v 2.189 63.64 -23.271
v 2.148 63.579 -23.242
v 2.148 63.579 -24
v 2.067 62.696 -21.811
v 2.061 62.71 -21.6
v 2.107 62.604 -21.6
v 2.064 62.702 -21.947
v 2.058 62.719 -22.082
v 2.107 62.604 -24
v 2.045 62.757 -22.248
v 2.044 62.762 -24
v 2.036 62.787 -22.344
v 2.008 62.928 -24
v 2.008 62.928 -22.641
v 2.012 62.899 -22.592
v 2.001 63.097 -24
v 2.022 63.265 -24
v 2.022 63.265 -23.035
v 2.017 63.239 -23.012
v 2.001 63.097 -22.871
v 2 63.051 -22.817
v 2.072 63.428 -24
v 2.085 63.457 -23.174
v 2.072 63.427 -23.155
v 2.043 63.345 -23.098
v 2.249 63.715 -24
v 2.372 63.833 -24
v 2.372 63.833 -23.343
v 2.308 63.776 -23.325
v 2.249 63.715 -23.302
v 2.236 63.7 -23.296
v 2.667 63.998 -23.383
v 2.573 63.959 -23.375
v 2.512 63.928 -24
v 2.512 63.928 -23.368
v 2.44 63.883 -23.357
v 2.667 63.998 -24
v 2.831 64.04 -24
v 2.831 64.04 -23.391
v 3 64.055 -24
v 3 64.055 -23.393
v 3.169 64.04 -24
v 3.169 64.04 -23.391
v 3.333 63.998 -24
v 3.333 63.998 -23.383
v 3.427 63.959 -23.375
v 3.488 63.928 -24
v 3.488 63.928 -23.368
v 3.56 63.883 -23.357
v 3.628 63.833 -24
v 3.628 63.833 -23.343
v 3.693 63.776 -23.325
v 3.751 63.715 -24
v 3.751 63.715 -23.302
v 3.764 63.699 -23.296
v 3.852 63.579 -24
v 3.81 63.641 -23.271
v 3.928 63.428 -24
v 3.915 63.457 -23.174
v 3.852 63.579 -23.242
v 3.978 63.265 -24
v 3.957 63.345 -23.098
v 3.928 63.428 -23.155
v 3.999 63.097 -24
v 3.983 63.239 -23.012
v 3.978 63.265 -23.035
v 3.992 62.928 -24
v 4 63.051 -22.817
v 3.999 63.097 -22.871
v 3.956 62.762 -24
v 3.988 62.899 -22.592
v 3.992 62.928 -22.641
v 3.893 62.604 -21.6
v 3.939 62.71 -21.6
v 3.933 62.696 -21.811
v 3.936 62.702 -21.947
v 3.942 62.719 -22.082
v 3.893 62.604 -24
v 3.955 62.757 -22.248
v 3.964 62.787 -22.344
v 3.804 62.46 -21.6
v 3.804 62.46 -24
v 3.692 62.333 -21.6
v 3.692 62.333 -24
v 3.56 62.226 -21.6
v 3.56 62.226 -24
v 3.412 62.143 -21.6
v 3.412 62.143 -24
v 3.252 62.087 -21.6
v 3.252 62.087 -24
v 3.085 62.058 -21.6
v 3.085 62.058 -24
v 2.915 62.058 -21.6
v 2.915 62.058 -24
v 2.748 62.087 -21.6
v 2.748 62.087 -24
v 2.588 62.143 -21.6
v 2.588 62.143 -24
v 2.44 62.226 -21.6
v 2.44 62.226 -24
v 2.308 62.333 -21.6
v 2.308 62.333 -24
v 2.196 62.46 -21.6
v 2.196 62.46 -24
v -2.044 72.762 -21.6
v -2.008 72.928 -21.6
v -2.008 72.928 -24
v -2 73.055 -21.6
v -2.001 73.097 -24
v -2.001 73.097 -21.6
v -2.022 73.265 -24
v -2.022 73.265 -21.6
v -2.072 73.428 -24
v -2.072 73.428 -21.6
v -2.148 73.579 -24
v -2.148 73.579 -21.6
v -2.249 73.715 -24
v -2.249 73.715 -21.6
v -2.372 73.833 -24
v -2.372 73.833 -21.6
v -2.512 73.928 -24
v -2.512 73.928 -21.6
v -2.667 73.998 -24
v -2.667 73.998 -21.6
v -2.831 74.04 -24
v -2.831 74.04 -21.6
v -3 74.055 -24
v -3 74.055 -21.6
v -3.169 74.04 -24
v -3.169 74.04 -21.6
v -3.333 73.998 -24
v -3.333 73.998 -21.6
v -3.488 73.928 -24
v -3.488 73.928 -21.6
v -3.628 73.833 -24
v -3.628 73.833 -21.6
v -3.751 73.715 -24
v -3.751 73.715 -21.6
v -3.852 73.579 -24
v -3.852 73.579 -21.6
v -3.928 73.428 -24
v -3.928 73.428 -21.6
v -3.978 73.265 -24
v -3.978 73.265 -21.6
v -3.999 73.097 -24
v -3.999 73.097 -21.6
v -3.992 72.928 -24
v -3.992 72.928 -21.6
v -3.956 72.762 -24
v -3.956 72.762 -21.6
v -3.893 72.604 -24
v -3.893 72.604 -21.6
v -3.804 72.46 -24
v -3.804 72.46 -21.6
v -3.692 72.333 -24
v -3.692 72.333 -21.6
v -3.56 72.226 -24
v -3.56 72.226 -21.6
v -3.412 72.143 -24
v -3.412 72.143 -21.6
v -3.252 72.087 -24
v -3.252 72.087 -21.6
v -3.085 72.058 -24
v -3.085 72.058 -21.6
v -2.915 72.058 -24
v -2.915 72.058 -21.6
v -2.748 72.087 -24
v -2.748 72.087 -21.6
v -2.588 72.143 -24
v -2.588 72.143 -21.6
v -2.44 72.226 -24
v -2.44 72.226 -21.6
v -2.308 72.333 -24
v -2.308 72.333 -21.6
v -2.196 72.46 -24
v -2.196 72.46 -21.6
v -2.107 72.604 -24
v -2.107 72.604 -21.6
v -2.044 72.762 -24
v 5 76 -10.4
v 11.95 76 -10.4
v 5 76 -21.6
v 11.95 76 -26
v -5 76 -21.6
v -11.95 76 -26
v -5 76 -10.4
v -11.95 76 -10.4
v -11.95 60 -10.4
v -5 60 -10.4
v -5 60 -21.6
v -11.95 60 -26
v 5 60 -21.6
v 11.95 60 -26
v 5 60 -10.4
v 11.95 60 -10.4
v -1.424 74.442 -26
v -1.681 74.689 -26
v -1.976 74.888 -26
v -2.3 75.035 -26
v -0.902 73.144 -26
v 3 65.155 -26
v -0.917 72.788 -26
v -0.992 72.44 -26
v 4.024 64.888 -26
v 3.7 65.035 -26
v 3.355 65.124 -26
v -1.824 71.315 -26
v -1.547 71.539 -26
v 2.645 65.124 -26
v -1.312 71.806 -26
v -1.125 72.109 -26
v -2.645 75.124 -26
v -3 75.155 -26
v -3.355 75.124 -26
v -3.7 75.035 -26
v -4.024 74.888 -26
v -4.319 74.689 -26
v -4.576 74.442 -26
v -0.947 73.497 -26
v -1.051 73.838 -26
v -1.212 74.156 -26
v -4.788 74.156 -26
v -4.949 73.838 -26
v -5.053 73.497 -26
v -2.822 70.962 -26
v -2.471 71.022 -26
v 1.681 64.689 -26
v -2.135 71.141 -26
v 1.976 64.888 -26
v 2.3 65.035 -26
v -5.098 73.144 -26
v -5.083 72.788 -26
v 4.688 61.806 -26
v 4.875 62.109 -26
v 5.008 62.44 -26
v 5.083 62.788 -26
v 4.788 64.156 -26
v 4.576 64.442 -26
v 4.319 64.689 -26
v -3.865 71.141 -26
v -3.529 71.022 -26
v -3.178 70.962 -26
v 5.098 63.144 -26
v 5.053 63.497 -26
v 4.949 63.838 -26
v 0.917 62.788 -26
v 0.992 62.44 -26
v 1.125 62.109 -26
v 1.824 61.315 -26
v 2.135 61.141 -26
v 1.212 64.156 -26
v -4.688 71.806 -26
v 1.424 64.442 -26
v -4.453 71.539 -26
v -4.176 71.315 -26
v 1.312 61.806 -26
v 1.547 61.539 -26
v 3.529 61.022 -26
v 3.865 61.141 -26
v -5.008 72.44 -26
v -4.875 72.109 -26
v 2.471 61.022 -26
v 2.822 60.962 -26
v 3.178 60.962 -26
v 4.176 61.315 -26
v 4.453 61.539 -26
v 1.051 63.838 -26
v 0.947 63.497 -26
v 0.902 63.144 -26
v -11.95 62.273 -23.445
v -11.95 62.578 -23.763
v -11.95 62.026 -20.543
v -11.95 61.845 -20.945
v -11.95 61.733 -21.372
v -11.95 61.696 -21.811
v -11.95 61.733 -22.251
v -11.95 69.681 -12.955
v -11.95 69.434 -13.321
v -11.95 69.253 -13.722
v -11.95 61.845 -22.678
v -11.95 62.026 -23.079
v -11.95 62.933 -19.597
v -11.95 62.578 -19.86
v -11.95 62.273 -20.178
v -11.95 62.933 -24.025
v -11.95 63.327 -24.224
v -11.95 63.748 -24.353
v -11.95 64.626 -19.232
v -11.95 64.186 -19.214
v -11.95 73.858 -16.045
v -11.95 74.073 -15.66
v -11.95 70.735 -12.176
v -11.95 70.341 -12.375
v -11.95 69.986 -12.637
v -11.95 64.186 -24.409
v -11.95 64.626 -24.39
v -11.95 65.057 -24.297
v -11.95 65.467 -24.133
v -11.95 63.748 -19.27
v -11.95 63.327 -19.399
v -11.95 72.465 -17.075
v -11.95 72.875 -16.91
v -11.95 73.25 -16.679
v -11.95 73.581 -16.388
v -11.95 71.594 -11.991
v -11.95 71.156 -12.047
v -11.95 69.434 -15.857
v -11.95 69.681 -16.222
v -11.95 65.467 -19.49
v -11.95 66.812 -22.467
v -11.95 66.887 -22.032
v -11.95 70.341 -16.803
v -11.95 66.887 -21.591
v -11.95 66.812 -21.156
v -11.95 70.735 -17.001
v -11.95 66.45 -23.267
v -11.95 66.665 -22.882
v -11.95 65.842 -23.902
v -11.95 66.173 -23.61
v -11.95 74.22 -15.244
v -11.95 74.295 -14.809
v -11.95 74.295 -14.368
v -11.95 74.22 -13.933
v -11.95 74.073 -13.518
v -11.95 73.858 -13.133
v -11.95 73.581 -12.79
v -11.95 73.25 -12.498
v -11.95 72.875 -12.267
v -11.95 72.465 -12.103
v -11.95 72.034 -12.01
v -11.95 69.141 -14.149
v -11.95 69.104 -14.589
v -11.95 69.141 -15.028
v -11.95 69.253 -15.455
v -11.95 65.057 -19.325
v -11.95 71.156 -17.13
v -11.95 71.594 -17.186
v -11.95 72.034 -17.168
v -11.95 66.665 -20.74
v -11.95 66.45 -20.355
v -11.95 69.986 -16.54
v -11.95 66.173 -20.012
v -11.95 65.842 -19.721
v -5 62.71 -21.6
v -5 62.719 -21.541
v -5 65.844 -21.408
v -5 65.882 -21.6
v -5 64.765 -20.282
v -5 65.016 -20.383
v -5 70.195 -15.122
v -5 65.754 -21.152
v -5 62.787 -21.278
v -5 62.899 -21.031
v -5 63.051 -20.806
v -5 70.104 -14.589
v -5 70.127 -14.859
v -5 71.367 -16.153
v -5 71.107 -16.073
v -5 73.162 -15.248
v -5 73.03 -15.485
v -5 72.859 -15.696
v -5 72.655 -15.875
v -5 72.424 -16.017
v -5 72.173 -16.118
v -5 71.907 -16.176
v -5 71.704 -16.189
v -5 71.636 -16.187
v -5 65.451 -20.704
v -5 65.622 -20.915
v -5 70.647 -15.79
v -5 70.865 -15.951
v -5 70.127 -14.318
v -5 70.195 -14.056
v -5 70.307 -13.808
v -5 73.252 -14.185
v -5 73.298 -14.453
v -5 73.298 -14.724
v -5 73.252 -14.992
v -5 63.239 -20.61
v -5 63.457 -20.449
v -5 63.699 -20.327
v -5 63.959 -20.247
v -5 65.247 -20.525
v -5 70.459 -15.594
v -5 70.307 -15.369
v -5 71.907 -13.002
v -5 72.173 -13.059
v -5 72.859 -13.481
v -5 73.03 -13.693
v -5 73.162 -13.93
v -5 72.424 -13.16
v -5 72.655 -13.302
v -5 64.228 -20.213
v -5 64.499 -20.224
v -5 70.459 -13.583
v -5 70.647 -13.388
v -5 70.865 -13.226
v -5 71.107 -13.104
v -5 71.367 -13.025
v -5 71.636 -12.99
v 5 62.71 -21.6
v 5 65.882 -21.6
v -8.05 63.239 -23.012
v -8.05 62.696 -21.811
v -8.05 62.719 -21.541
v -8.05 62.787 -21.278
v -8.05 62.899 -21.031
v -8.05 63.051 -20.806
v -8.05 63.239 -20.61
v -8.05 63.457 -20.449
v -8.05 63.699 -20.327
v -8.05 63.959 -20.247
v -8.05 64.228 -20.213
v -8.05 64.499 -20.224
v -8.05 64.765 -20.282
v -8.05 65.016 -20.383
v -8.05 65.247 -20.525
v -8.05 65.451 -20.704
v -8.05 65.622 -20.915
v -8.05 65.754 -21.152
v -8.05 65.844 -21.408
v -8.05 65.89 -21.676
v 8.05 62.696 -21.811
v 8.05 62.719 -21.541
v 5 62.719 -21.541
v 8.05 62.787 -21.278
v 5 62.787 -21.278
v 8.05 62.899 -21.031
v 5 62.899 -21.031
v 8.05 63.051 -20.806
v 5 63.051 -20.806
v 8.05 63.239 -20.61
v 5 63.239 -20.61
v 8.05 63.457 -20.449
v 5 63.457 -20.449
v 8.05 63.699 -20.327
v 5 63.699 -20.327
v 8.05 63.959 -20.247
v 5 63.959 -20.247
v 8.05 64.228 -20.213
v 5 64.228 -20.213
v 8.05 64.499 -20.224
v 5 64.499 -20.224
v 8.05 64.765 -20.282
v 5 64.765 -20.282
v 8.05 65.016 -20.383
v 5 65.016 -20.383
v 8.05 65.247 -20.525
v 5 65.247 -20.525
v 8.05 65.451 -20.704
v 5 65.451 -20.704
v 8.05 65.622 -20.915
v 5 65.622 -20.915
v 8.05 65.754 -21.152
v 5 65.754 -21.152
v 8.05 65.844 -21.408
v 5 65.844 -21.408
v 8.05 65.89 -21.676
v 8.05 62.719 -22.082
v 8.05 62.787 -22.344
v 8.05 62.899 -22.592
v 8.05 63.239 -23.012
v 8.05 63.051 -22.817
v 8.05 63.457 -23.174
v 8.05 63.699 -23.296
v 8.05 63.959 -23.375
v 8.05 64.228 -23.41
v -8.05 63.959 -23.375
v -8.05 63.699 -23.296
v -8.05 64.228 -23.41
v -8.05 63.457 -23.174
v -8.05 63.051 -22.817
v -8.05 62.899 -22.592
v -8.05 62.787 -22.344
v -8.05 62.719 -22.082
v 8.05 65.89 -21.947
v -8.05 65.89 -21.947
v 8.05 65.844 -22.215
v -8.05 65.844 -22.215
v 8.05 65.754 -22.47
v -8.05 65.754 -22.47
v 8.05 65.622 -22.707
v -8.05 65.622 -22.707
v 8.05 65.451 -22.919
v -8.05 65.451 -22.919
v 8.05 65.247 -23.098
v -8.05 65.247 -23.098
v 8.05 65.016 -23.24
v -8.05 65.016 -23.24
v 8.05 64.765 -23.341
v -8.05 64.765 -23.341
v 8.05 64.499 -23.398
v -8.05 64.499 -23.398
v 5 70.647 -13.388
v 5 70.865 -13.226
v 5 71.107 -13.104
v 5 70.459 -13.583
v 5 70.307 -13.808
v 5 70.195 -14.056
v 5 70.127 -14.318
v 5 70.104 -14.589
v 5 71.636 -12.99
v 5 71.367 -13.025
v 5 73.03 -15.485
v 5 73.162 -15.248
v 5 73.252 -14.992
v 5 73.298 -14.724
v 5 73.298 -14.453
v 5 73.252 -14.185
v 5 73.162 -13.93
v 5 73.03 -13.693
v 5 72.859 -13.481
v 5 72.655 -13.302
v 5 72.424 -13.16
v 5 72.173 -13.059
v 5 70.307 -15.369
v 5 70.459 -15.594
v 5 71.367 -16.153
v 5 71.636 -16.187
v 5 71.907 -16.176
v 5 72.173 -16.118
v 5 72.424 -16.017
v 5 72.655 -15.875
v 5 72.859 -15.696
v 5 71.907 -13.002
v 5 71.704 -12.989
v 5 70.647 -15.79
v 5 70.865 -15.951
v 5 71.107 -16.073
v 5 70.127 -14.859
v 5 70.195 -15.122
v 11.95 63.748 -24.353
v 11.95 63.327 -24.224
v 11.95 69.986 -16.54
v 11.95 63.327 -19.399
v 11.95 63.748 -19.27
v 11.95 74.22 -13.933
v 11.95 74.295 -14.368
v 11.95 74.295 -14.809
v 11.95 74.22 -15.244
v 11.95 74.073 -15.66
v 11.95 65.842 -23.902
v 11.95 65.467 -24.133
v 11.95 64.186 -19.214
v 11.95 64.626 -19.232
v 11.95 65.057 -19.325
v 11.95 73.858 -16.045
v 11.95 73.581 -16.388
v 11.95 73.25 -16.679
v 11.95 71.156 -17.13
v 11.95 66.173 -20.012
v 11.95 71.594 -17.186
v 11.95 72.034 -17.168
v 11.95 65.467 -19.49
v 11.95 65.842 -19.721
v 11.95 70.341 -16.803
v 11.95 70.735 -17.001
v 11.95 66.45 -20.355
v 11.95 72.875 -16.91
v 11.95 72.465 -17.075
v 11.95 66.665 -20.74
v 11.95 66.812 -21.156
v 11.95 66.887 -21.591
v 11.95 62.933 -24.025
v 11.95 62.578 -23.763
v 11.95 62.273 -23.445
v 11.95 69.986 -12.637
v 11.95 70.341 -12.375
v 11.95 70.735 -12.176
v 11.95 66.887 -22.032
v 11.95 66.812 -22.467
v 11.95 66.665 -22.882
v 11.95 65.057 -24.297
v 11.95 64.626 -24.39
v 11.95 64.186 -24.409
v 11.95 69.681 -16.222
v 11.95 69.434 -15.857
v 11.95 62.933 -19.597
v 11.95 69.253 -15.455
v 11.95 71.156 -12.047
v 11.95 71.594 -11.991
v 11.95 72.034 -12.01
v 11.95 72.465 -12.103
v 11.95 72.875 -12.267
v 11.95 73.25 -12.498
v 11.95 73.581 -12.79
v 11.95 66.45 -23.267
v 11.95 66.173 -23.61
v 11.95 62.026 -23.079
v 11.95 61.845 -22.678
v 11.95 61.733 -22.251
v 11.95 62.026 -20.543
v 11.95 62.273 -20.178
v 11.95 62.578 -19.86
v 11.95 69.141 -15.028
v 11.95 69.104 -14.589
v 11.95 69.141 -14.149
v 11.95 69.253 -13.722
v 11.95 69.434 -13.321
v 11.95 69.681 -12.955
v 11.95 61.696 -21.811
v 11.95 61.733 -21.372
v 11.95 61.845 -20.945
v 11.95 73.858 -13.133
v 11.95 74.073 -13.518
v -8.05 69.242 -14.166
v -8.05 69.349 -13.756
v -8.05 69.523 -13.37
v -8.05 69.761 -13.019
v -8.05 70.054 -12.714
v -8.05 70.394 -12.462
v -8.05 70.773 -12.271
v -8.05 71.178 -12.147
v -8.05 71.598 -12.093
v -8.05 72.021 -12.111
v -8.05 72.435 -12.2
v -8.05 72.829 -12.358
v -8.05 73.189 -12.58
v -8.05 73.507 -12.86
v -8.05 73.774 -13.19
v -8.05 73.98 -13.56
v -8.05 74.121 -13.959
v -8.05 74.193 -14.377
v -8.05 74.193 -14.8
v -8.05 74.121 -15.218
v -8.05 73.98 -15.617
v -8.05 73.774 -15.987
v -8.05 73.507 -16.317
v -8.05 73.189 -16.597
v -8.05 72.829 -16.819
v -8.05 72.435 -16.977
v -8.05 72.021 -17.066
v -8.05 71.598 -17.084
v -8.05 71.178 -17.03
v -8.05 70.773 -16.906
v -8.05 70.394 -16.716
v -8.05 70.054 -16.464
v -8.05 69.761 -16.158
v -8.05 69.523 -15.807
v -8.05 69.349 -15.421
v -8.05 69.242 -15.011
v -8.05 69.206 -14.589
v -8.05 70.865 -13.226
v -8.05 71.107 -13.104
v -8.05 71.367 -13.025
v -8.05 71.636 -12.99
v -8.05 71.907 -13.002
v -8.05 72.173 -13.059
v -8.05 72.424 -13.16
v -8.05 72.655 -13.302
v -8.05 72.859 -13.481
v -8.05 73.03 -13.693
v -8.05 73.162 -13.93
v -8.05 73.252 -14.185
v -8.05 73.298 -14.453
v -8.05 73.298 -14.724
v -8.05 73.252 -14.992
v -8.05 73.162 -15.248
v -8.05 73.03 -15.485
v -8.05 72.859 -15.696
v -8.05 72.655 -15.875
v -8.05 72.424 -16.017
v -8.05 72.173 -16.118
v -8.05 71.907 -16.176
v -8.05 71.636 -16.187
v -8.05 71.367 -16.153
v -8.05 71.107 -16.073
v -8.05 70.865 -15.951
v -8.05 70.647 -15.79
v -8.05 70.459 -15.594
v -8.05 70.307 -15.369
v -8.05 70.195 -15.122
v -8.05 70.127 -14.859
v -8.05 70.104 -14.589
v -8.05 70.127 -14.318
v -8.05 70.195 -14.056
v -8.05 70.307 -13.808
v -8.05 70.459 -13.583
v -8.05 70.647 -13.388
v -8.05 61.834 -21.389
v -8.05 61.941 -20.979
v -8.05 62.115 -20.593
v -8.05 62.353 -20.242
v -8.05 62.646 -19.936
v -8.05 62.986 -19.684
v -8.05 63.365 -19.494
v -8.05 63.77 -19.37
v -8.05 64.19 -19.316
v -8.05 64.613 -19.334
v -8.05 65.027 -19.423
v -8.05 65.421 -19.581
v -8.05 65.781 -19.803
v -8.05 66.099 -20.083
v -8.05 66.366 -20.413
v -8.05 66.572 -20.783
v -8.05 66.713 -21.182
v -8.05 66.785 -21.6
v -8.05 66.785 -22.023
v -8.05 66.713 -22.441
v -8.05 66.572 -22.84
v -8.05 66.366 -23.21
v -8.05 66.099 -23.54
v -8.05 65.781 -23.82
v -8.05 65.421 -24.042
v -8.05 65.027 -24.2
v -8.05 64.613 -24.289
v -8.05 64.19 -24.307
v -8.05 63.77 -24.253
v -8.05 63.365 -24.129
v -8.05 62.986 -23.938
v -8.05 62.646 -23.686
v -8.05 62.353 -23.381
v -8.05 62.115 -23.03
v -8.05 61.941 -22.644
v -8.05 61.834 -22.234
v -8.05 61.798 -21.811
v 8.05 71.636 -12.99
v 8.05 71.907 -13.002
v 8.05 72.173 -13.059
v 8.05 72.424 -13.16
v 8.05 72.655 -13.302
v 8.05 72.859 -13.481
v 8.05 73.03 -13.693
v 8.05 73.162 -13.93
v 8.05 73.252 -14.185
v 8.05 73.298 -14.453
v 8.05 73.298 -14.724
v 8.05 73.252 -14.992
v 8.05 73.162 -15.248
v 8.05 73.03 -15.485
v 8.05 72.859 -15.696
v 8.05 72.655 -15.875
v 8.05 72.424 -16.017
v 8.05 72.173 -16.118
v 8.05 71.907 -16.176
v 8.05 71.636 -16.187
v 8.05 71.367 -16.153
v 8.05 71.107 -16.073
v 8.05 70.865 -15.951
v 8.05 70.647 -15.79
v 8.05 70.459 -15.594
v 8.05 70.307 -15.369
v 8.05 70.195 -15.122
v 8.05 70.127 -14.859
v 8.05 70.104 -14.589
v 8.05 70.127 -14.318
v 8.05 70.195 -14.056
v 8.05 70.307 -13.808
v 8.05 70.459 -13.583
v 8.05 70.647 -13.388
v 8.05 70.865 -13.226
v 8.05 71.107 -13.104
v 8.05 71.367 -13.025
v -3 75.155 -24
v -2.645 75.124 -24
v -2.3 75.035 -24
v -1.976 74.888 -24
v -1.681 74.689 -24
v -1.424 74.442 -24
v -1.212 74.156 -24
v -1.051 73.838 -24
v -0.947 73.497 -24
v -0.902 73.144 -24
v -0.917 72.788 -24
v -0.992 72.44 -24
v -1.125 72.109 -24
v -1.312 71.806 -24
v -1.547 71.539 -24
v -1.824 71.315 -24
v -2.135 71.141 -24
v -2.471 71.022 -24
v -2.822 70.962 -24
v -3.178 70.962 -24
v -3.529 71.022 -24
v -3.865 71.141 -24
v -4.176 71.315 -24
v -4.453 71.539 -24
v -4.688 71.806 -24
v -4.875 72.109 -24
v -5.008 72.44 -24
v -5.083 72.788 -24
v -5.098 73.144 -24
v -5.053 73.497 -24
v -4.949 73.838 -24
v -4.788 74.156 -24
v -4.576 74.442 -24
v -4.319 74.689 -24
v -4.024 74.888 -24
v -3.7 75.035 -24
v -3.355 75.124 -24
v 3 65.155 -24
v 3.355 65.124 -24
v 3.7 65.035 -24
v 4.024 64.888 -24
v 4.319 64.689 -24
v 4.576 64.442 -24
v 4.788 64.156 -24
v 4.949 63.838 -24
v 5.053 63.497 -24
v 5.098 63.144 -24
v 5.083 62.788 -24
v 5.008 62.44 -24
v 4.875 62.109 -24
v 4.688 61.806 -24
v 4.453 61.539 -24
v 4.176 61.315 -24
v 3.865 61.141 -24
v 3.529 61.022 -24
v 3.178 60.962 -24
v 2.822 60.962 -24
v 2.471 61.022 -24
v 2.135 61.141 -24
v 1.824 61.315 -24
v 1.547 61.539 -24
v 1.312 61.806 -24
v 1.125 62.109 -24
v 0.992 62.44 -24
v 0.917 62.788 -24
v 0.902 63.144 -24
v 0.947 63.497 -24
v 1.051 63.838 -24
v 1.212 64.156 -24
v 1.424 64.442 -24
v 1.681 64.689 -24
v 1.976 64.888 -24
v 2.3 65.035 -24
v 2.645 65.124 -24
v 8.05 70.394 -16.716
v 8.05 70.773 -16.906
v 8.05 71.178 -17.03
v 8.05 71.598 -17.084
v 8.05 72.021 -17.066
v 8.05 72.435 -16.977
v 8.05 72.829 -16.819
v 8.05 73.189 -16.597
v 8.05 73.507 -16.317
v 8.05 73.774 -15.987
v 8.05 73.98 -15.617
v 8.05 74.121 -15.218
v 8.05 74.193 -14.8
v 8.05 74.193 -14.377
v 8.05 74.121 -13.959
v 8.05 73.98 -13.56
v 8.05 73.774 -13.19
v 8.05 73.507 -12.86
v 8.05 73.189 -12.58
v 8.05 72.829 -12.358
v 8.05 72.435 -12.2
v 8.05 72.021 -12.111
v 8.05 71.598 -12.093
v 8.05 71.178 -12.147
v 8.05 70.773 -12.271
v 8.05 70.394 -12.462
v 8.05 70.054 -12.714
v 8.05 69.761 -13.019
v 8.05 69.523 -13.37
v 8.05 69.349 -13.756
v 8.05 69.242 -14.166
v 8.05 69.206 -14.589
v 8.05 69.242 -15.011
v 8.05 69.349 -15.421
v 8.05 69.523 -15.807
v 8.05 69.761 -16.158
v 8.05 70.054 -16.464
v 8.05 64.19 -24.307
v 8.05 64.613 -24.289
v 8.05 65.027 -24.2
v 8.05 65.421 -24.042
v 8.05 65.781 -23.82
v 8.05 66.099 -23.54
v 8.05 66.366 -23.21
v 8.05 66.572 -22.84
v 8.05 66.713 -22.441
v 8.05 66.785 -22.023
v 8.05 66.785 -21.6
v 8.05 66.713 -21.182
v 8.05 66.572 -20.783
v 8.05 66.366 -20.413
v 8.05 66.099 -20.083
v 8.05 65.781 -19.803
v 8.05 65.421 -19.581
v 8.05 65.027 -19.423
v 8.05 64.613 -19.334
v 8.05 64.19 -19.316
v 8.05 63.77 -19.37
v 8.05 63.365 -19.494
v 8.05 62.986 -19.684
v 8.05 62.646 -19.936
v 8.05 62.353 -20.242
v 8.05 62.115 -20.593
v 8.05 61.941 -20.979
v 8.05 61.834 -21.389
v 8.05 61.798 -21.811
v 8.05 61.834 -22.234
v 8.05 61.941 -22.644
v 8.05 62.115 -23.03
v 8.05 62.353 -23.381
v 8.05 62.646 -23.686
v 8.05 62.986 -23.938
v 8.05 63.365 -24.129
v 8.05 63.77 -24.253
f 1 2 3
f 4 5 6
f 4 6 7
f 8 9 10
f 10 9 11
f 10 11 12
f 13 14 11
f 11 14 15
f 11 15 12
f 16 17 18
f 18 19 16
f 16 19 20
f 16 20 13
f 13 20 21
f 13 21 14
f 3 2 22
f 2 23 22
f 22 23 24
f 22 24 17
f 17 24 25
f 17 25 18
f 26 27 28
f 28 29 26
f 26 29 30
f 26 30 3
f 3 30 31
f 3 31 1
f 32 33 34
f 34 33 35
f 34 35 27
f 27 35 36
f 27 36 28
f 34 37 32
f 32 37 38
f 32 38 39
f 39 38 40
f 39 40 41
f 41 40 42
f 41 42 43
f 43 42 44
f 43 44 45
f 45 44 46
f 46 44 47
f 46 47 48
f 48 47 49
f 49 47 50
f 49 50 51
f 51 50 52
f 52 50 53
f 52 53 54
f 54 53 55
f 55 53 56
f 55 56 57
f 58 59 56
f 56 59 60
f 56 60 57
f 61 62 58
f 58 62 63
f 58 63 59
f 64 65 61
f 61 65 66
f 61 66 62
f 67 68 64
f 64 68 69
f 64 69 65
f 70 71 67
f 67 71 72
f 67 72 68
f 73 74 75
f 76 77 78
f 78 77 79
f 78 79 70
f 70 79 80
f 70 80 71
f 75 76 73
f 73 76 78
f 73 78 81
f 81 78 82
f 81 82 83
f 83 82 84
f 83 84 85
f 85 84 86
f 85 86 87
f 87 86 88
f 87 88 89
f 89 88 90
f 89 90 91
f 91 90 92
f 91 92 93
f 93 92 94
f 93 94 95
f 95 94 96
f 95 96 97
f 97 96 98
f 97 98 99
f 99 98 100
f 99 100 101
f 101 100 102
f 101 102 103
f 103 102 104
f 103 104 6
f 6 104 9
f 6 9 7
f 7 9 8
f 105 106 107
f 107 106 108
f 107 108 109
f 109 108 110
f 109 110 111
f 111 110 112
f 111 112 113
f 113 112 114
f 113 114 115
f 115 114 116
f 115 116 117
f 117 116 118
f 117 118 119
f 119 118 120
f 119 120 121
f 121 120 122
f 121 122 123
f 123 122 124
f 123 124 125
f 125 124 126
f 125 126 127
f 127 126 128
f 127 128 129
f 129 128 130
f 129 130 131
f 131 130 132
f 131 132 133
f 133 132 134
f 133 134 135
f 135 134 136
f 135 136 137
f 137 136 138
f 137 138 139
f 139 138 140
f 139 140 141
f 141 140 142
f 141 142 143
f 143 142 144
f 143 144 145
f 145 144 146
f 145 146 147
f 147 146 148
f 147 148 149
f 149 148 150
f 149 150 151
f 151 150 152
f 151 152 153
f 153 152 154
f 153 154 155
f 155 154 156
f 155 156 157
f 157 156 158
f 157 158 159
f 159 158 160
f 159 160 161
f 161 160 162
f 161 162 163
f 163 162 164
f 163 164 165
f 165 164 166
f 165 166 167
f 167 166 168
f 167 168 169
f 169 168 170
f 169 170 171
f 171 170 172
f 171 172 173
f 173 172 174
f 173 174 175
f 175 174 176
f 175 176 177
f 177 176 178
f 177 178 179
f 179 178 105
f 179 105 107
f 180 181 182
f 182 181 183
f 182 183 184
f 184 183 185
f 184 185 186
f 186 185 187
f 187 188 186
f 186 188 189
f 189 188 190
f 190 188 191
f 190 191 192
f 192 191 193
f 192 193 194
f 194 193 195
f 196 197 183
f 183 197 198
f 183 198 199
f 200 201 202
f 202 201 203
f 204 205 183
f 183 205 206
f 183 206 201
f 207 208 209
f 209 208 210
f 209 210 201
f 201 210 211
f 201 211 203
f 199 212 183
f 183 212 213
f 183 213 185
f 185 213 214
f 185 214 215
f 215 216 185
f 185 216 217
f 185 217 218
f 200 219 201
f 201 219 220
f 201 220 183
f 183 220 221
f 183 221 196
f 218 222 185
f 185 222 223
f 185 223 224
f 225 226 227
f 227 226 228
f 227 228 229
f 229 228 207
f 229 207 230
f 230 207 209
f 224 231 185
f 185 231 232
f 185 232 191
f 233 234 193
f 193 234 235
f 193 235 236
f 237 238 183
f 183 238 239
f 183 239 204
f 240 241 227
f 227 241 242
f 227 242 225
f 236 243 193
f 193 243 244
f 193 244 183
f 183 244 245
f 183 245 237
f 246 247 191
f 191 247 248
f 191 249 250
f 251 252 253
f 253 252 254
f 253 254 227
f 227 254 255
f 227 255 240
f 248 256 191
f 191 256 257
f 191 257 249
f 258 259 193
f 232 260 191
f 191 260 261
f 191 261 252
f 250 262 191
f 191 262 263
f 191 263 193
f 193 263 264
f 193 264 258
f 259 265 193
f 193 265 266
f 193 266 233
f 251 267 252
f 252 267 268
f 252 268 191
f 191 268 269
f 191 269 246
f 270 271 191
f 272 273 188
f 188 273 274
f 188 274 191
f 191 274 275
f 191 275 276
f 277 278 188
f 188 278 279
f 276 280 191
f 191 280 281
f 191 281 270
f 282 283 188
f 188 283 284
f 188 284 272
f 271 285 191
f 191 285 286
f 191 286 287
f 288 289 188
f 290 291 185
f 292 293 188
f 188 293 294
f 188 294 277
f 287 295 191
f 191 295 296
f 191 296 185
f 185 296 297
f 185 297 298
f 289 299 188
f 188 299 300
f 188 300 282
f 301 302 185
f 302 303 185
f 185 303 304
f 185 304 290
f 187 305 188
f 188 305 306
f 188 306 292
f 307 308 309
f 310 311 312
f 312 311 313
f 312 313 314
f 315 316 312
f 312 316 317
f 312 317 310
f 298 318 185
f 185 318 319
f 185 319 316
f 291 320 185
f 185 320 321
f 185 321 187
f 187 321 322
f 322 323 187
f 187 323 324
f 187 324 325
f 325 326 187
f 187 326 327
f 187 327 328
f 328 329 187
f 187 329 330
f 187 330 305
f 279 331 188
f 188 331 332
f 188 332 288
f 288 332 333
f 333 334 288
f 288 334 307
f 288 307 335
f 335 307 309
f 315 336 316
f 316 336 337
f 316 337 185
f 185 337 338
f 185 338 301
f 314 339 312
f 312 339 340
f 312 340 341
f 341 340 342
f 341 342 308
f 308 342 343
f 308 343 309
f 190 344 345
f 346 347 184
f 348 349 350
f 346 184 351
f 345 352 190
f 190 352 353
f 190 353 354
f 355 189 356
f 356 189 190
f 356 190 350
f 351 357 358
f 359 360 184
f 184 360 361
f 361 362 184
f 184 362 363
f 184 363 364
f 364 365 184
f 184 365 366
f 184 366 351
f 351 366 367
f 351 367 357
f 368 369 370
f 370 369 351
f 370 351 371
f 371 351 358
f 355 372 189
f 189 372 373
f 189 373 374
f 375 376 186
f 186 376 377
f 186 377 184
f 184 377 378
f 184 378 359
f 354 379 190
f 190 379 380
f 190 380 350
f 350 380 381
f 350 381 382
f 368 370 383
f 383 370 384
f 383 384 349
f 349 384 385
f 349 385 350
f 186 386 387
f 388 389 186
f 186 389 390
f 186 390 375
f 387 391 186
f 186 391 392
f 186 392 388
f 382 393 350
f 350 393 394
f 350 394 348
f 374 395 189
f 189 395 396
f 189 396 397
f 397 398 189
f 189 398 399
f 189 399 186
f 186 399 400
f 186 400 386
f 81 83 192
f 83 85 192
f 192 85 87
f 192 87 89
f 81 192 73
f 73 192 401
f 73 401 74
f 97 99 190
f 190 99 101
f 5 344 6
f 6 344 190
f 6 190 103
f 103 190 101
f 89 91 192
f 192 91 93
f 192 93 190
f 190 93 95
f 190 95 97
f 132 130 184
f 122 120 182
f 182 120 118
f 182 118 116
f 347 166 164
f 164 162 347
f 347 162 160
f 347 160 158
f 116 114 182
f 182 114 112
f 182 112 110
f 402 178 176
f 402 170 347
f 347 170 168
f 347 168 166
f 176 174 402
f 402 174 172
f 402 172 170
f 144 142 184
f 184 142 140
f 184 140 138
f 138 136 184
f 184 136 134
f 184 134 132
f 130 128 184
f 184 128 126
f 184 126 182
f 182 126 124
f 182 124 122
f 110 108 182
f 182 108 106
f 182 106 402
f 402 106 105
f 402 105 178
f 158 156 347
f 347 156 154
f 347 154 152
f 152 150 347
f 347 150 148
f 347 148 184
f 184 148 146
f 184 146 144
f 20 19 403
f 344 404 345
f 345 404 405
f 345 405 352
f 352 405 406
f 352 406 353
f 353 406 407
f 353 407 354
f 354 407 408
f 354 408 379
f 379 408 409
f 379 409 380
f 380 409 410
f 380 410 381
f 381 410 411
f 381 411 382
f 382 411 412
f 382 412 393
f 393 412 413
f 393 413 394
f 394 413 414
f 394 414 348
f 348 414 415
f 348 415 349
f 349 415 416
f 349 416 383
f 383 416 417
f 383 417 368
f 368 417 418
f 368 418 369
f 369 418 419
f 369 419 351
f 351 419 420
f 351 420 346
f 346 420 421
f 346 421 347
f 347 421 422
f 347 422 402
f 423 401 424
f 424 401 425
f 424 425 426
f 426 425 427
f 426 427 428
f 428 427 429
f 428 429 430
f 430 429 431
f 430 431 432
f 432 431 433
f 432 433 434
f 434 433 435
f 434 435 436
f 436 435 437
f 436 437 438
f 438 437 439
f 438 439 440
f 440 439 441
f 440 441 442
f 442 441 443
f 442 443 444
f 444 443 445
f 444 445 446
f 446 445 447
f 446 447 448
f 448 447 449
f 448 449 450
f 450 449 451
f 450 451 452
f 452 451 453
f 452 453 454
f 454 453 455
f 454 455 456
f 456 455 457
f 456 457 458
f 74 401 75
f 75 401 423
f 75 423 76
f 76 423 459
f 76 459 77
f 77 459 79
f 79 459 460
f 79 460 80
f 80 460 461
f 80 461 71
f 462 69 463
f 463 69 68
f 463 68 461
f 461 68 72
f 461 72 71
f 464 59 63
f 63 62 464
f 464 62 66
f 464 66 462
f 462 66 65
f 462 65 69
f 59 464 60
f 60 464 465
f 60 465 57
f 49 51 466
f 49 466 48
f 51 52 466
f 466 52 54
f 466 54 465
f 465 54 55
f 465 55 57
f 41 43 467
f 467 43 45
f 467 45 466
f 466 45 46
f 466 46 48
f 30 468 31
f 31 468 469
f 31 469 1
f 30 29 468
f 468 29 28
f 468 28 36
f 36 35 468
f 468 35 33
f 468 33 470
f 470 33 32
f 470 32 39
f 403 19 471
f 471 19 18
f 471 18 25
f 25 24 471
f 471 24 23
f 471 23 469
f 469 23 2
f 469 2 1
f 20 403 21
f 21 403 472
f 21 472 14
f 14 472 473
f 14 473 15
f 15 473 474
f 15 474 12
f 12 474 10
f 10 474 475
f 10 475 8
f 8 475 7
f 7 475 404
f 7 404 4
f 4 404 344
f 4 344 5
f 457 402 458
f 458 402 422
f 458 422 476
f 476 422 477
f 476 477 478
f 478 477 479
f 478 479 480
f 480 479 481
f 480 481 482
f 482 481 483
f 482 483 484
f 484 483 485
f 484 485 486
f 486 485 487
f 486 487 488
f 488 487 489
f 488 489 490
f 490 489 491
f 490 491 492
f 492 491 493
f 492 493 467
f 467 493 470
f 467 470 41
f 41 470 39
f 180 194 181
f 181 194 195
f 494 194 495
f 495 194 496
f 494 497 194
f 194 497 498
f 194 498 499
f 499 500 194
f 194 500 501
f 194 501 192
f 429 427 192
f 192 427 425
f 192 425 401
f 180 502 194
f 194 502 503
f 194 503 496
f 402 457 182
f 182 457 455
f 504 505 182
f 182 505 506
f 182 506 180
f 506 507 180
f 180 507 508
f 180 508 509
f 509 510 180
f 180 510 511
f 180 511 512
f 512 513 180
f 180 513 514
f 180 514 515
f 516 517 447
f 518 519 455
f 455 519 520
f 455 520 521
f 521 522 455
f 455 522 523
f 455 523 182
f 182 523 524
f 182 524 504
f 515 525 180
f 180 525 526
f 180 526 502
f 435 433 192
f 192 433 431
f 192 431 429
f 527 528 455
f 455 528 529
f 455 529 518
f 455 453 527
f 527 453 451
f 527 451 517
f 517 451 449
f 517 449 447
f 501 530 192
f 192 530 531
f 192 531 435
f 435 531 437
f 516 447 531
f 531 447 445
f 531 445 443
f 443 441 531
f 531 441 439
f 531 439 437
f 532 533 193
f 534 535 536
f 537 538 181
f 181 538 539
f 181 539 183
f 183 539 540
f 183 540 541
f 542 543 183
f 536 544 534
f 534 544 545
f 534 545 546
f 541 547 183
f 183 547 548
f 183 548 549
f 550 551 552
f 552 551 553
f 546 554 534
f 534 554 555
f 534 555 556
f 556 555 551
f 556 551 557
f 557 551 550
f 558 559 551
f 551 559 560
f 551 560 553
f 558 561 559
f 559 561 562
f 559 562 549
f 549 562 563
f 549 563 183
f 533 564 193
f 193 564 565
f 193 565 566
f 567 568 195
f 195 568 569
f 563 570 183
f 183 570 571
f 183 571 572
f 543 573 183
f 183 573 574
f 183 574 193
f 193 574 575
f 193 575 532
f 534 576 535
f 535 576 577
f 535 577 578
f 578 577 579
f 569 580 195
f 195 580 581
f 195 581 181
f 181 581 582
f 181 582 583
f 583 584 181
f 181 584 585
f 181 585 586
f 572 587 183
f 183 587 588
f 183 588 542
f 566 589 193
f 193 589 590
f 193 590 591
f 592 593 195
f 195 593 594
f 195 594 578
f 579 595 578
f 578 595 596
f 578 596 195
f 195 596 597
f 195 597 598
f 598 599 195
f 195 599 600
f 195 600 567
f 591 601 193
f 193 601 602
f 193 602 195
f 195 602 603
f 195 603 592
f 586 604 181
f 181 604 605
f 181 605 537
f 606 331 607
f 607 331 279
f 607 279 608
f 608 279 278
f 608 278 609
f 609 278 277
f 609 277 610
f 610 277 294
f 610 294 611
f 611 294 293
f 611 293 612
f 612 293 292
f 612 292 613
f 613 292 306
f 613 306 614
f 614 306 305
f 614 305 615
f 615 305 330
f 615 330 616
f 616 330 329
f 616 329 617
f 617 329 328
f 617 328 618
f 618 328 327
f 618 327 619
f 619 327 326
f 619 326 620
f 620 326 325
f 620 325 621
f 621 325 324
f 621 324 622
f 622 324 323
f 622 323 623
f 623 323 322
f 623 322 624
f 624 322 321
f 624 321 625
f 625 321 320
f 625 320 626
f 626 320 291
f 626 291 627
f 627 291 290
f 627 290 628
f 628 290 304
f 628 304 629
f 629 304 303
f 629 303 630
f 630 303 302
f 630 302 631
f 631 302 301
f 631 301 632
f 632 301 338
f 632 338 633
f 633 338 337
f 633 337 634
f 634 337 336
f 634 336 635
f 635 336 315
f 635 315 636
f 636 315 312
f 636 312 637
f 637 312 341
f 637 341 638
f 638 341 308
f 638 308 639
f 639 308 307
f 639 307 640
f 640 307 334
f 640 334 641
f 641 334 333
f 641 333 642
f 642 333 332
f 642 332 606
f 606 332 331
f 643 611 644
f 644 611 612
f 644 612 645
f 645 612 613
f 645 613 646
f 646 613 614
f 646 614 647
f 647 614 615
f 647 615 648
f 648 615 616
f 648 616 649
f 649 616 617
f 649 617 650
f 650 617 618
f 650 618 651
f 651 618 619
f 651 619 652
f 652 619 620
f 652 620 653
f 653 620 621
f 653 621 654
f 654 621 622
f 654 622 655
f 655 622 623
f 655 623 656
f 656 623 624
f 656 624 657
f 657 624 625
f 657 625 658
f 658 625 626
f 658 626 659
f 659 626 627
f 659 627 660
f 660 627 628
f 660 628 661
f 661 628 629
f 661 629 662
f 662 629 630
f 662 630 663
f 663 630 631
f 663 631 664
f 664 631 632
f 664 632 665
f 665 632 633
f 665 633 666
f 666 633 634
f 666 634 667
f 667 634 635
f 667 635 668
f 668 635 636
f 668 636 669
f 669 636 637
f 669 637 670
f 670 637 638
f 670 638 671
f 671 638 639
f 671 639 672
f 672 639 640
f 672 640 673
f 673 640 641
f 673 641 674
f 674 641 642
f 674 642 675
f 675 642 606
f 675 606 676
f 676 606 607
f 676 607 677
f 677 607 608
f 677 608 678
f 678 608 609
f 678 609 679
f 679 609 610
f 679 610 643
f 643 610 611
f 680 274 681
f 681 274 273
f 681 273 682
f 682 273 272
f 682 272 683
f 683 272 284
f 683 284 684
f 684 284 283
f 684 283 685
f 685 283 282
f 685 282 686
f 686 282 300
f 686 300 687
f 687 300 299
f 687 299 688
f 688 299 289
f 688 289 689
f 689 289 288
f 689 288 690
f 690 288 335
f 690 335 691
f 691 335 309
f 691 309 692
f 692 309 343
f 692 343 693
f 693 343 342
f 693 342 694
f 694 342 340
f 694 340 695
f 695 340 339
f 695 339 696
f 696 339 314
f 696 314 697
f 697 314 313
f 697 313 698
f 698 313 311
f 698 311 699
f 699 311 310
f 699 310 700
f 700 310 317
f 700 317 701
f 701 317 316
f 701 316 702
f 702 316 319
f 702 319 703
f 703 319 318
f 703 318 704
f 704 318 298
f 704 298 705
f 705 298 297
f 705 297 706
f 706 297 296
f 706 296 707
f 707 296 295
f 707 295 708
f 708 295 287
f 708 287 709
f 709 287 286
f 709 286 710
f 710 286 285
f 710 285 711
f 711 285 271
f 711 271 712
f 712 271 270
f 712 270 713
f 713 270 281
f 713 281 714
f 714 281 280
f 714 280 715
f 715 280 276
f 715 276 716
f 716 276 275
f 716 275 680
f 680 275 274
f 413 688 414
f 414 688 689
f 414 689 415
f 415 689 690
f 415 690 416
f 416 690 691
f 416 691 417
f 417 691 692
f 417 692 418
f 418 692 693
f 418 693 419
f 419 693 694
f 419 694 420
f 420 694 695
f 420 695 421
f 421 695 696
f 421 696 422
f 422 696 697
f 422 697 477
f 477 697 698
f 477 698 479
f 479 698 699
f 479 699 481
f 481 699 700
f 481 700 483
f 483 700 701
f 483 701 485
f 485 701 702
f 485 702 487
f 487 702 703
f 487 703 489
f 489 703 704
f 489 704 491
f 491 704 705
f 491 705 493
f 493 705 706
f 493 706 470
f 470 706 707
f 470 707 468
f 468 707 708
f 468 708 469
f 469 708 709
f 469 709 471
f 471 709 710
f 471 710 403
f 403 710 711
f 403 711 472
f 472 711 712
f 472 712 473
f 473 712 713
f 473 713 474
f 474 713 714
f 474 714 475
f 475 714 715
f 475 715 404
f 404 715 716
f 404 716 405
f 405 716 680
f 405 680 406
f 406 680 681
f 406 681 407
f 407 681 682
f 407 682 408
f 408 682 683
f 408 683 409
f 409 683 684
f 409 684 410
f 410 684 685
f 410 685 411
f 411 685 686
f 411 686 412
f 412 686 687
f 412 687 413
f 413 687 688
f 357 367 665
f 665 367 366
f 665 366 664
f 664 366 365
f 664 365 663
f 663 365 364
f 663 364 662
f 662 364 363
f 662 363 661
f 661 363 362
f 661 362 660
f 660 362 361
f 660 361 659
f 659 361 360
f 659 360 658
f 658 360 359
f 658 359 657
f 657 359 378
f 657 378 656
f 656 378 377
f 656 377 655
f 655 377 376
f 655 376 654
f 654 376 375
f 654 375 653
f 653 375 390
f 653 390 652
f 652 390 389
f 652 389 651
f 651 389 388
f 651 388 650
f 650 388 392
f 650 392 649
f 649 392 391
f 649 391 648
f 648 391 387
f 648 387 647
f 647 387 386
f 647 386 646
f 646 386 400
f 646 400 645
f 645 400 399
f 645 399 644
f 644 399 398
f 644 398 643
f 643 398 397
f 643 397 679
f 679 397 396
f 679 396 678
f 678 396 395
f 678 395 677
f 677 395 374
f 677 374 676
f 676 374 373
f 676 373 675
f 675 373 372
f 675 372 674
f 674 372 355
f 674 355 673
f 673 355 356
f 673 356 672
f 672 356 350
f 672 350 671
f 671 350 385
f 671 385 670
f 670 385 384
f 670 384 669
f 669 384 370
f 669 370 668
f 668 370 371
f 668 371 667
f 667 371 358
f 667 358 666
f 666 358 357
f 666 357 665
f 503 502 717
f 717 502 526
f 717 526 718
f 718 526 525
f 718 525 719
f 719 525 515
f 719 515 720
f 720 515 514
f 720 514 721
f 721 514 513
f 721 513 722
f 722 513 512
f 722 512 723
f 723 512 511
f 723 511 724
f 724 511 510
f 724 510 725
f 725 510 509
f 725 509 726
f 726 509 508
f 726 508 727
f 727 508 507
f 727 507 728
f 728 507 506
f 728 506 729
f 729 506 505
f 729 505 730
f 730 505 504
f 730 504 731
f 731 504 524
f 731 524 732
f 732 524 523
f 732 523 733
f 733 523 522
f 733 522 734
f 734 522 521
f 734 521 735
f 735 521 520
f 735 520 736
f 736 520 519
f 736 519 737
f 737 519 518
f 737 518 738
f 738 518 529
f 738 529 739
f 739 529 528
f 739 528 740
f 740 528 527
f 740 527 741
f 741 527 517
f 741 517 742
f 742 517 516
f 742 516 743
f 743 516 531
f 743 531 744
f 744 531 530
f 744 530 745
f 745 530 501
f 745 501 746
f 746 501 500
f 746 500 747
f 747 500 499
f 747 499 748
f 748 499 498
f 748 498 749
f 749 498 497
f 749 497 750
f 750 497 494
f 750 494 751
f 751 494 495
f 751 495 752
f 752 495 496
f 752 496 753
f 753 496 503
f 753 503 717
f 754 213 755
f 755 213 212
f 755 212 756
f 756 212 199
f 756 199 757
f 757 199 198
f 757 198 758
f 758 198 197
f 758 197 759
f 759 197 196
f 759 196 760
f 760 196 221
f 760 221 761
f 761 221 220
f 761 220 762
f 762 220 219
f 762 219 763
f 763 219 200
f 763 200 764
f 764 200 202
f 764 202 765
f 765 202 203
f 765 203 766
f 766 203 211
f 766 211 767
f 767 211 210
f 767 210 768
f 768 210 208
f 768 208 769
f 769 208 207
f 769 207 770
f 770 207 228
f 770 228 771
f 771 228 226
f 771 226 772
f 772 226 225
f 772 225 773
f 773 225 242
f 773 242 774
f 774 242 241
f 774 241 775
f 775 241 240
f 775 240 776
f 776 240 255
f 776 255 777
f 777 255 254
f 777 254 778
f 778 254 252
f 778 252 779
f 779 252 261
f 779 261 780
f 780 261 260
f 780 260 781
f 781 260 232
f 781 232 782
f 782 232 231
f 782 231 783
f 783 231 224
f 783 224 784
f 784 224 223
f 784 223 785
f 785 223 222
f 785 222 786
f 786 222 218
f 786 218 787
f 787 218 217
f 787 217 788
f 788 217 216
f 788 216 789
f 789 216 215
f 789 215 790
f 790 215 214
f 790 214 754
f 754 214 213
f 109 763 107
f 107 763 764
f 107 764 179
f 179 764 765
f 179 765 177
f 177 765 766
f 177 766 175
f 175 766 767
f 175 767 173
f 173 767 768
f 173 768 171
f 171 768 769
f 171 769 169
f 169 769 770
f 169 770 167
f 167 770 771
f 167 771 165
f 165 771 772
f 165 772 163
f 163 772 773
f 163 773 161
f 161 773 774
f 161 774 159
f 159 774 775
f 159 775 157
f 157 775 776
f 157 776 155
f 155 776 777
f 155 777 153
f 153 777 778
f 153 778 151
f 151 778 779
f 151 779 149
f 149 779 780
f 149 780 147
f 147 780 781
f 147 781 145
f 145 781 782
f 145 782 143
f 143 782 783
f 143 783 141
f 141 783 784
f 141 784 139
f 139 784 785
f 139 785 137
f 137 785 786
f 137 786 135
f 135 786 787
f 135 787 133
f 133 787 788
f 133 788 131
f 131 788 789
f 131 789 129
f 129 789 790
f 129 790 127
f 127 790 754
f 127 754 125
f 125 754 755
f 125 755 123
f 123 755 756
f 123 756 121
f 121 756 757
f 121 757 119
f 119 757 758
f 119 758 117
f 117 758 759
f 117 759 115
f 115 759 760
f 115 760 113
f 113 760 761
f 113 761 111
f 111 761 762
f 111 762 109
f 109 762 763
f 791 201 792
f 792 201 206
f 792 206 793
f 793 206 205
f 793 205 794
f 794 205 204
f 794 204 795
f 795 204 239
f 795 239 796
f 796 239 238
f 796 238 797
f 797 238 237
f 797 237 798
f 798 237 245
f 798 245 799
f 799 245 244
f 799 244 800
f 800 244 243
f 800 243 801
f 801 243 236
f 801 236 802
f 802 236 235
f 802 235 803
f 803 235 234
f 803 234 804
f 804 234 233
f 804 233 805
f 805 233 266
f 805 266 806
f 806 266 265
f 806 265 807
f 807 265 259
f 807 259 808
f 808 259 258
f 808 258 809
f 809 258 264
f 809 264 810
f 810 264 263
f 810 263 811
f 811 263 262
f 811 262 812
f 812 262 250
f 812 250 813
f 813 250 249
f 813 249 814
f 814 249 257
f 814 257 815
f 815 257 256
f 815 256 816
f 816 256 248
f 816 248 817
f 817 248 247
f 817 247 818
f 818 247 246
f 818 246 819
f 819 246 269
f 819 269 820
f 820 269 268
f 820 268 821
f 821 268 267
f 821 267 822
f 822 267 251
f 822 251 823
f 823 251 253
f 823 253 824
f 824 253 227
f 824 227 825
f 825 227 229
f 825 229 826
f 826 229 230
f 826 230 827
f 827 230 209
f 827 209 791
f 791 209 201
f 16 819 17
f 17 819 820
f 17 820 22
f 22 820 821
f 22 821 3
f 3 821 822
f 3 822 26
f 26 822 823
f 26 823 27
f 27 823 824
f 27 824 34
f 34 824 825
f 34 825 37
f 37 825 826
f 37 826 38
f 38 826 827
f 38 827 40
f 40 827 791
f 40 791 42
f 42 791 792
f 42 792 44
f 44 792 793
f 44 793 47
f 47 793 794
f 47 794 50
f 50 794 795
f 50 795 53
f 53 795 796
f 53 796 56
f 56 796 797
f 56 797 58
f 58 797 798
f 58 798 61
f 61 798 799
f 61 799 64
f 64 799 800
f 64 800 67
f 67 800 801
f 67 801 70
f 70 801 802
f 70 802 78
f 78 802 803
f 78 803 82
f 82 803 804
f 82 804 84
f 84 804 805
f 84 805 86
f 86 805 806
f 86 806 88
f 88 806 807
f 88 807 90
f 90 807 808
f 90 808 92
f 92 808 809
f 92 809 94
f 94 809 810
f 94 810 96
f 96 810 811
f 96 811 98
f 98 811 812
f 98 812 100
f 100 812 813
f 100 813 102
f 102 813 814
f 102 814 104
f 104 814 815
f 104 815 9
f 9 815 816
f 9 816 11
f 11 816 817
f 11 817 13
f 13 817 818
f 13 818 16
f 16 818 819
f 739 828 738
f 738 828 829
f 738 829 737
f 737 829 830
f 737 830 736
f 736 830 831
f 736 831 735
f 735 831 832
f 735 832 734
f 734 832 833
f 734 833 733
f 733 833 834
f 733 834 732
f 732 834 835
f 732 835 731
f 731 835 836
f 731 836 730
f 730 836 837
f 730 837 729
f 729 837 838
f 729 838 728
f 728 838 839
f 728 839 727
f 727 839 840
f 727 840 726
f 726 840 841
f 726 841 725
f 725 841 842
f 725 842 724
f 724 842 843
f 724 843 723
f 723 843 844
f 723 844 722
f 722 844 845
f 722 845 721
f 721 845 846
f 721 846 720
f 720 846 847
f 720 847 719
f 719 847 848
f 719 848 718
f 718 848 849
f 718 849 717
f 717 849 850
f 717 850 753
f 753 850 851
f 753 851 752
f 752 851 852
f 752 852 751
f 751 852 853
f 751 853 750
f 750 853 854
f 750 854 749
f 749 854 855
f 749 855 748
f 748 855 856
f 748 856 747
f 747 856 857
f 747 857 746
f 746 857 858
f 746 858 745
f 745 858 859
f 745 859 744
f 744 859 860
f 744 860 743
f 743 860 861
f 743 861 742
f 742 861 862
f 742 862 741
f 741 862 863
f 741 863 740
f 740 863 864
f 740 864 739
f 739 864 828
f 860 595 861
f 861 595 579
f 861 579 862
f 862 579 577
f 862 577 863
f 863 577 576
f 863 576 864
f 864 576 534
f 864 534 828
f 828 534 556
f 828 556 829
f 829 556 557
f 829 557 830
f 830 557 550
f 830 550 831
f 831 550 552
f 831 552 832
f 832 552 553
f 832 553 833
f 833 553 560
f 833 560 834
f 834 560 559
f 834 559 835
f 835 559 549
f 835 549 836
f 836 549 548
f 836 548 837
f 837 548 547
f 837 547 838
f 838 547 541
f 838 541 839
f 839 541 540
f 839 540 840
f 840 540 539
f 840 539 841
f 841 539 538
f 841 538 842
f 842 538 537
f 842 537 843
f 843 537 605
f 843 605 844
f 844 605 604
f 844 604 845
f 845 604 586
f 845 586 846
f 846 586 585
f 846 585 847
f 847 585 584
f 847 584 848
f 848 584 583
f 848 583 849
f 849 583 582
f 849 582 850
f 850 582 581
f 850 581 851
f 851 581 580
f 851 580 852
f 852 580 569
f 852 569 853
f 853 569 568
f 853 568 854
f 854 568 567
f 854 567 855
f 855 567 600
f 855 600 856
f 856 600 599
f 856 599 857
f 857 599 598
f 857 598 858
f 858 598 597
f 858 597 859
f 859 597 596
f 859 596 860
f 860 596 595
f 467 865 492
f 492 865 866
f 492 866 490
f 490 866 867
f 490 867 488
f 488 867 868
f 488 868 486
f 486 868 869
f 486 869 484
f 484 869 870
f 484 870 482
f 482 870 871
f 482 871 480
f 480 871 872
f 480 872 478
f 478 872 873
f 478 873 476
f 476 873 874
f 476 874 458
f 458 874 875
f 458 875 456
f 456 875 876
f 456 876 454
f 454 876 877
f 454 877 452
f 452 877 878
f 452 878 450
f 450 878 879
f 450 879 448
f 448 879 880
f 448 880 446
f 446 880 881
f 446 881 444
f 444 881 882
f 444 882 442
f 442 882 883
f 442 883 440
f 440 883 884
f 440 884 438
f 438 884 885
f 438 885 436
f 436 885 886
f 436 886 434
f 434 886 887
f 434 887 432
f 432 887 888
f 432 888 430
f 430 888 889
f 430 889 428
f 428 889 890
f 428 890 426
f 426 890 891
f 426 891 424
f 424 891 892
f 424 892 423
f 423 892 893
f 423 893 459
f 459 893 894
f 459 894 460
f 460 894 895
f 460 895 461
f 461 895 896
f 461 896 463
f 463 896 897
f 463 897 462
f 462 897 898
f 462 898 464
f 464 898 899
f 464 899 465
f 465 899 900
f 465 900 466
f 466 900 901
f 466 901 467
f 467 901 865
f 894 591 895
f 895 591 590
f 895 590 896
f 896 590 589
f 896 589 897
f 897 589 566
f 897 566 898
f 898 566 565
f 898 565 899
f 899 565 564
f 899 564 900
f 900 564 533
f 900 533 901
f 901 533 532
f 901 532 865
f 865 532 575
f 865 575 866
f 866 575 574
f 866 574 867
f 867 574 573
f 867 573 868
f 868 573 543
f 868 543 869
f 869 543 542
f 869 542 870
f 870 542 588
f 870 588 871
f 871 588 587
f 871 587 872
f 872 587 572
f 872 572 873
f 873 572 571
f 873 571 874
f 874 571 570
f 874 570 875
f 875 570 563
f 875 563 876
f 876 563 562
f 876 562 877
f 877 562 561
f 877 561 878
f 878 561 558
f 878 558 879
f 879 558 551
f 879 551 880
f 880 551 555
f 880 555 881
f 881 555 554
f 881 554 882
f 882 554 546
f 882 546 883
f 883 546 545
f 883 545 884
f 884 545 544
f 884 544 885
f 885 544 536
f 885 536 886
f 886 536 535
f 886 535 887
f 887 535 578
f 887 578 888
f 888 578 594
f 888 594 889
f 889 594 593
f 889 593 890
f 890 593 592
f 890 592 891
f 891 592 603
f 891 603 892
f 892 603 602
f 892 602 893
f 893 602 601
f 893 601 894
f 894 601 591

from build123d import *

# Parameters (mm, degrees)
SKETCH1_W                    = 15.6
SKETCH1_H                    = 16
BOSS_EXTRUDE1_DEPTH          = 6.95
SKETCH1_3_W                  = 4.4
SKETCH1_3_H                  = 16
BOSS_EXTRUDE2_DEPTH          = 16.95
BOSS_EXTRUDE3_START          = 16.95
SKETCH1_4_W                  = 15.6
SKETCH1_4_H                  = 16
BOSS_EXTRUDE3_DEPTH          = 6.95
SKETCH2_R                    = 2.6
CUT_EXTRUDE1_DEPTH           = 3.9
CUT_EXTRUDE1_DRAFT           = -1.5
CUT_EXTRUDE1_PROFILE_2_DEPTH = 3.9
CUT_EXTRUDE1_PROFILE_2_DRAFT = -1.5
SKETCH2_3_R                  = 1.6
CUT_EXTRUDE2_DEPTH           = 84.804594146
SKETCH3_R                    = 1
CUT_EXTRUDE3_DEPTH           = 79.499442673
SKETCH3_3_R                  = 2.1
CUT_EXTRUDE4_DEPTH           = 2
CUT_EXTRUDE5_START           = -23.9
SKETCH2_4_R                  = 2.6
CUT_EXTRUDE5_DEPTH           = 3.9
CUT_EXTRUDE5_DRAFT           = 1.5
CUT_EXTRUDE5_PROFILE_2_DEPTH = 3.9
CUT_EXTRUDE5_PROFILE_2_DRAFT = 1.5


with BuildPart() as part:
    # Sketch1 → Boss-Extrude1 (new body)
    with BuildSketch(Plane(origin=(-11.95, 0, 0), x_dir=(0, 0, -1), z_dir=(1, 0, 0))):
        with Locations((18.2, 68)):
            Rectangle(SKETCH1_W, SKETCH1_H)
    extrude(amount=BOSS_EXTRUDE1_DEPTH)

    # Sketch1<3> → Boss-Extrude2 (add)
    with BuildSketch(Plane(origin=(-11.95, 0, 0), x_dir=(0, 0, -1), z_dir=(1, 0, 0))):
        with Locations((23.8, 68)):
            Rectangle(SKETCH1_3_W, SKETCH1_3_H)
    extrude(amount=BOSS_EXTRUDE2_DEPTH)

    # Sketch1<4> → Boss-Extrude3 (add)
    with BuildSketch(Plane(origin=(-11.95, 0, 0), x_dir=(0, 0, -1), z_dir=(1, 0, 0)).offset(BOSS_EXTRUDE3_START)):
        with Locations((18.2, 68)):
            Rectangle(SKETCH1_4_W, SKETCH1_4_H)
    extrude(amount=BOSS_EXTRUDE3_DEPTH)


with BuildPart() as cut_extrude1_tool:
    # Sketch2 → Cut-Extrude1 (with draft: the straight prism first)
    with BuildSketch(Plane.ZY.offset(11.95)):
        with Locations((-21.811399183, 64.296000838)):
            Circle(SKETCH2_R)
    extrude(amount=-CUT_EXTRUDE1_DEPTH)
    # Cut-Extrude1: the draft: its side faces are tilted about the plane it starts from
    cut_extrude1_sides = [cut_extrude1_tool.faces().sort_by_distance(p)[0] for p in [
        (-10, 64.296000838, -24.411399183),
    ]]
    draft(cut_extrude1_sides, Plane.ZY.offset(11.95), CUT_EXTRUDE1_DRAFT)


with BuildPart() as part_1:
    add(part.part)

    # Cut-Extrude1: cut by cut_extrude1_tool
    add(cut_extrude1_tool.part, mode=Mode.SUBTRACT)


with BuildPart() as cut_extrude1_profile_2_tool:
    # Sketch2 → Cut-Extrude1 profile 2 (with draft: the straight prism first)
    with BuildSketch(Plane.ZY.offset(11.95)):
        with Locations((-14.588600817, 71.703999162)):
            Circle(SKETCH2_R)
    extrude(amount=-CUT_EXTRUDE1_PROFILE_2_DEPTH)
    # Cut-Extrude1 profile 2: the draft: its side faces are tilted about the plane it starts from
    cut_extrude1_profile_2_sides = [cut_extrude1_profile_2_tool.faces().sort_by_distance(p)[0] for p in [
        (-10, 71.703999162, -17.188600817),
    ]]
    draft(cut_extrude1_profile_2_sides, Plane.ZY.offset(11.95), CUT_EXTRUDE1_PROFILE_2_DRAFT)


with BuildPart() as part_2:
    add(part_1.part)

    # Cut-Extrude1 profile 2: cut by cut_extrude1_profile_2_tool
    add(cut_extrude1_profile_2_tool.part, mode=Mode.SUBTRACT)

    # Sketch2<3> → Cut-Extrude2 (cut, through all)
    with BuildSketch(Plane.ZY.offset(11.95)):
        with Locations(Location((-21.811399183, 64.296000838, 0), (0, 0, 270))):
            Circle(SKETCH2_3_R)
        with Locations(Location((-14.588600817, 71.703999162, 0), (0, 0, 270))):
            Circle(SKETCH2_3_R)
    extrude(amount=-CUT_EXTRUDE2_DEPTH, mode=Mode.SUBTRACT)

    # Sketch3 → Cut-Extrude3 (cut, through all)
    with BuildSketch(Plane(origin=(0, 0, -26), x_dir=(-1, 0, 0), z_dir=(0, 0, -1))):
        with Locations(Location((3, 73.05466329, 0), (0, 0, 90))):
            Circle(SKETCH3_R)
        with Locations(Location((-3, 63.05466329, 0), (0, 0, 90))):
            Circle(SKETCH3_R)
    extrude(amount=-CUT_EXTRUDE3_DEPTH, mode=Mode.SUBTRACT)

    # Sketch3<3> → Cut-Extrude4 (cut)
    with BuildSketch(Plane(origin=(0, 0, -26), x_dir=(-1, 0, 0), z_dir=(0, 0, -1))):
        with Locations(Location((3, 73.05466329, 0), (0, 0, 90))):
            Circle(SKETCH3_3_R)
        with Locations(Location((-3, 63.05466329, 0), (0, 0, 90))):
            Circle(SKETCH3_3_R)
    extrude(amount=-CUT_EXTRUDE4_DEPTH, mode=Mode.SUBTRACT)


with BuildPart() as cut_extrude5_tool:
    # Sketch2<4> → Cut-Extrude5 (with draft: the straight prism first)
    with BuildSketch(Plane.ZY.offset(11.95).offset(CUT_EXTRUDE5_START)):
        with Locations((-21.811399183, 64.296000838)):
            Circle(SKETCH2_4_R)
    extrude(amount=CUT_EXTRUDE5_DEPTH)
    # Cut-Extrude5: the draft: its side faces are tilted about the plane it starts from
    cut_extrude5_sides = [cut_extrude5_tool.faces().sort_by_distance(p)[0] for p in [
        (10, 64.296000838, -24.411399183),
    ]]
    draft(cut_extrude5_sides, Plane.ZY.offset(11.95).offset(CUT_EXTRUDE5_START), CUT_EXTRUDE5_DRAFT)


with BuildPart() as part_3:
    add(part_2.part)

    # Cut-Extrude5: cut by cut_extrude5_tool
    add(cut_extrude5_tool.part, mode=Mode.SUBTRACT)


with BuildPart() as cut_extrude5_profile_2_tool:
    # Sketch2<4> → Cut-Extrude5 profile 2 (with draft: the straight prism first)
    with BuildSketch(Plane.ZY.offset(11.95).offset(CUT_EXTRUDE5_START)):
        with Locations((-14.588600817, 71.703999162)):
            Circle(SKETCH2_4_R)
    extrude(amount=CUT_EXTRUDE5_PROFILE_2_DEPTH)
    # Cut-Extrude5 profile 2: the draft: its side faces are tilted about the plane it starts from
    cut_extrude5_profile_2_sides = [cut_extrude5_profile_2_tool.faces().sort_by_distance(p)[0] for p in [
        (10, 71.703999162, -17.188600817),
    ]]
    draft(cut_extrude5_profile_2_sides, Plane.ZY.offset(11.95).offset(CUT_EXTRUDE5_START), CUT_EXTRUDE5_PROFILE_2_DRAFT)


with BuildPart() as part_4:
    add(part_3.part)

    # Cut-Extrude5 profile 2: cut by cut_extrude5_profile_2_tool
    add(cut_extrude5_profile_2_tool.part, mode=Mode.SUBTRACT)


solid = part_4.part
